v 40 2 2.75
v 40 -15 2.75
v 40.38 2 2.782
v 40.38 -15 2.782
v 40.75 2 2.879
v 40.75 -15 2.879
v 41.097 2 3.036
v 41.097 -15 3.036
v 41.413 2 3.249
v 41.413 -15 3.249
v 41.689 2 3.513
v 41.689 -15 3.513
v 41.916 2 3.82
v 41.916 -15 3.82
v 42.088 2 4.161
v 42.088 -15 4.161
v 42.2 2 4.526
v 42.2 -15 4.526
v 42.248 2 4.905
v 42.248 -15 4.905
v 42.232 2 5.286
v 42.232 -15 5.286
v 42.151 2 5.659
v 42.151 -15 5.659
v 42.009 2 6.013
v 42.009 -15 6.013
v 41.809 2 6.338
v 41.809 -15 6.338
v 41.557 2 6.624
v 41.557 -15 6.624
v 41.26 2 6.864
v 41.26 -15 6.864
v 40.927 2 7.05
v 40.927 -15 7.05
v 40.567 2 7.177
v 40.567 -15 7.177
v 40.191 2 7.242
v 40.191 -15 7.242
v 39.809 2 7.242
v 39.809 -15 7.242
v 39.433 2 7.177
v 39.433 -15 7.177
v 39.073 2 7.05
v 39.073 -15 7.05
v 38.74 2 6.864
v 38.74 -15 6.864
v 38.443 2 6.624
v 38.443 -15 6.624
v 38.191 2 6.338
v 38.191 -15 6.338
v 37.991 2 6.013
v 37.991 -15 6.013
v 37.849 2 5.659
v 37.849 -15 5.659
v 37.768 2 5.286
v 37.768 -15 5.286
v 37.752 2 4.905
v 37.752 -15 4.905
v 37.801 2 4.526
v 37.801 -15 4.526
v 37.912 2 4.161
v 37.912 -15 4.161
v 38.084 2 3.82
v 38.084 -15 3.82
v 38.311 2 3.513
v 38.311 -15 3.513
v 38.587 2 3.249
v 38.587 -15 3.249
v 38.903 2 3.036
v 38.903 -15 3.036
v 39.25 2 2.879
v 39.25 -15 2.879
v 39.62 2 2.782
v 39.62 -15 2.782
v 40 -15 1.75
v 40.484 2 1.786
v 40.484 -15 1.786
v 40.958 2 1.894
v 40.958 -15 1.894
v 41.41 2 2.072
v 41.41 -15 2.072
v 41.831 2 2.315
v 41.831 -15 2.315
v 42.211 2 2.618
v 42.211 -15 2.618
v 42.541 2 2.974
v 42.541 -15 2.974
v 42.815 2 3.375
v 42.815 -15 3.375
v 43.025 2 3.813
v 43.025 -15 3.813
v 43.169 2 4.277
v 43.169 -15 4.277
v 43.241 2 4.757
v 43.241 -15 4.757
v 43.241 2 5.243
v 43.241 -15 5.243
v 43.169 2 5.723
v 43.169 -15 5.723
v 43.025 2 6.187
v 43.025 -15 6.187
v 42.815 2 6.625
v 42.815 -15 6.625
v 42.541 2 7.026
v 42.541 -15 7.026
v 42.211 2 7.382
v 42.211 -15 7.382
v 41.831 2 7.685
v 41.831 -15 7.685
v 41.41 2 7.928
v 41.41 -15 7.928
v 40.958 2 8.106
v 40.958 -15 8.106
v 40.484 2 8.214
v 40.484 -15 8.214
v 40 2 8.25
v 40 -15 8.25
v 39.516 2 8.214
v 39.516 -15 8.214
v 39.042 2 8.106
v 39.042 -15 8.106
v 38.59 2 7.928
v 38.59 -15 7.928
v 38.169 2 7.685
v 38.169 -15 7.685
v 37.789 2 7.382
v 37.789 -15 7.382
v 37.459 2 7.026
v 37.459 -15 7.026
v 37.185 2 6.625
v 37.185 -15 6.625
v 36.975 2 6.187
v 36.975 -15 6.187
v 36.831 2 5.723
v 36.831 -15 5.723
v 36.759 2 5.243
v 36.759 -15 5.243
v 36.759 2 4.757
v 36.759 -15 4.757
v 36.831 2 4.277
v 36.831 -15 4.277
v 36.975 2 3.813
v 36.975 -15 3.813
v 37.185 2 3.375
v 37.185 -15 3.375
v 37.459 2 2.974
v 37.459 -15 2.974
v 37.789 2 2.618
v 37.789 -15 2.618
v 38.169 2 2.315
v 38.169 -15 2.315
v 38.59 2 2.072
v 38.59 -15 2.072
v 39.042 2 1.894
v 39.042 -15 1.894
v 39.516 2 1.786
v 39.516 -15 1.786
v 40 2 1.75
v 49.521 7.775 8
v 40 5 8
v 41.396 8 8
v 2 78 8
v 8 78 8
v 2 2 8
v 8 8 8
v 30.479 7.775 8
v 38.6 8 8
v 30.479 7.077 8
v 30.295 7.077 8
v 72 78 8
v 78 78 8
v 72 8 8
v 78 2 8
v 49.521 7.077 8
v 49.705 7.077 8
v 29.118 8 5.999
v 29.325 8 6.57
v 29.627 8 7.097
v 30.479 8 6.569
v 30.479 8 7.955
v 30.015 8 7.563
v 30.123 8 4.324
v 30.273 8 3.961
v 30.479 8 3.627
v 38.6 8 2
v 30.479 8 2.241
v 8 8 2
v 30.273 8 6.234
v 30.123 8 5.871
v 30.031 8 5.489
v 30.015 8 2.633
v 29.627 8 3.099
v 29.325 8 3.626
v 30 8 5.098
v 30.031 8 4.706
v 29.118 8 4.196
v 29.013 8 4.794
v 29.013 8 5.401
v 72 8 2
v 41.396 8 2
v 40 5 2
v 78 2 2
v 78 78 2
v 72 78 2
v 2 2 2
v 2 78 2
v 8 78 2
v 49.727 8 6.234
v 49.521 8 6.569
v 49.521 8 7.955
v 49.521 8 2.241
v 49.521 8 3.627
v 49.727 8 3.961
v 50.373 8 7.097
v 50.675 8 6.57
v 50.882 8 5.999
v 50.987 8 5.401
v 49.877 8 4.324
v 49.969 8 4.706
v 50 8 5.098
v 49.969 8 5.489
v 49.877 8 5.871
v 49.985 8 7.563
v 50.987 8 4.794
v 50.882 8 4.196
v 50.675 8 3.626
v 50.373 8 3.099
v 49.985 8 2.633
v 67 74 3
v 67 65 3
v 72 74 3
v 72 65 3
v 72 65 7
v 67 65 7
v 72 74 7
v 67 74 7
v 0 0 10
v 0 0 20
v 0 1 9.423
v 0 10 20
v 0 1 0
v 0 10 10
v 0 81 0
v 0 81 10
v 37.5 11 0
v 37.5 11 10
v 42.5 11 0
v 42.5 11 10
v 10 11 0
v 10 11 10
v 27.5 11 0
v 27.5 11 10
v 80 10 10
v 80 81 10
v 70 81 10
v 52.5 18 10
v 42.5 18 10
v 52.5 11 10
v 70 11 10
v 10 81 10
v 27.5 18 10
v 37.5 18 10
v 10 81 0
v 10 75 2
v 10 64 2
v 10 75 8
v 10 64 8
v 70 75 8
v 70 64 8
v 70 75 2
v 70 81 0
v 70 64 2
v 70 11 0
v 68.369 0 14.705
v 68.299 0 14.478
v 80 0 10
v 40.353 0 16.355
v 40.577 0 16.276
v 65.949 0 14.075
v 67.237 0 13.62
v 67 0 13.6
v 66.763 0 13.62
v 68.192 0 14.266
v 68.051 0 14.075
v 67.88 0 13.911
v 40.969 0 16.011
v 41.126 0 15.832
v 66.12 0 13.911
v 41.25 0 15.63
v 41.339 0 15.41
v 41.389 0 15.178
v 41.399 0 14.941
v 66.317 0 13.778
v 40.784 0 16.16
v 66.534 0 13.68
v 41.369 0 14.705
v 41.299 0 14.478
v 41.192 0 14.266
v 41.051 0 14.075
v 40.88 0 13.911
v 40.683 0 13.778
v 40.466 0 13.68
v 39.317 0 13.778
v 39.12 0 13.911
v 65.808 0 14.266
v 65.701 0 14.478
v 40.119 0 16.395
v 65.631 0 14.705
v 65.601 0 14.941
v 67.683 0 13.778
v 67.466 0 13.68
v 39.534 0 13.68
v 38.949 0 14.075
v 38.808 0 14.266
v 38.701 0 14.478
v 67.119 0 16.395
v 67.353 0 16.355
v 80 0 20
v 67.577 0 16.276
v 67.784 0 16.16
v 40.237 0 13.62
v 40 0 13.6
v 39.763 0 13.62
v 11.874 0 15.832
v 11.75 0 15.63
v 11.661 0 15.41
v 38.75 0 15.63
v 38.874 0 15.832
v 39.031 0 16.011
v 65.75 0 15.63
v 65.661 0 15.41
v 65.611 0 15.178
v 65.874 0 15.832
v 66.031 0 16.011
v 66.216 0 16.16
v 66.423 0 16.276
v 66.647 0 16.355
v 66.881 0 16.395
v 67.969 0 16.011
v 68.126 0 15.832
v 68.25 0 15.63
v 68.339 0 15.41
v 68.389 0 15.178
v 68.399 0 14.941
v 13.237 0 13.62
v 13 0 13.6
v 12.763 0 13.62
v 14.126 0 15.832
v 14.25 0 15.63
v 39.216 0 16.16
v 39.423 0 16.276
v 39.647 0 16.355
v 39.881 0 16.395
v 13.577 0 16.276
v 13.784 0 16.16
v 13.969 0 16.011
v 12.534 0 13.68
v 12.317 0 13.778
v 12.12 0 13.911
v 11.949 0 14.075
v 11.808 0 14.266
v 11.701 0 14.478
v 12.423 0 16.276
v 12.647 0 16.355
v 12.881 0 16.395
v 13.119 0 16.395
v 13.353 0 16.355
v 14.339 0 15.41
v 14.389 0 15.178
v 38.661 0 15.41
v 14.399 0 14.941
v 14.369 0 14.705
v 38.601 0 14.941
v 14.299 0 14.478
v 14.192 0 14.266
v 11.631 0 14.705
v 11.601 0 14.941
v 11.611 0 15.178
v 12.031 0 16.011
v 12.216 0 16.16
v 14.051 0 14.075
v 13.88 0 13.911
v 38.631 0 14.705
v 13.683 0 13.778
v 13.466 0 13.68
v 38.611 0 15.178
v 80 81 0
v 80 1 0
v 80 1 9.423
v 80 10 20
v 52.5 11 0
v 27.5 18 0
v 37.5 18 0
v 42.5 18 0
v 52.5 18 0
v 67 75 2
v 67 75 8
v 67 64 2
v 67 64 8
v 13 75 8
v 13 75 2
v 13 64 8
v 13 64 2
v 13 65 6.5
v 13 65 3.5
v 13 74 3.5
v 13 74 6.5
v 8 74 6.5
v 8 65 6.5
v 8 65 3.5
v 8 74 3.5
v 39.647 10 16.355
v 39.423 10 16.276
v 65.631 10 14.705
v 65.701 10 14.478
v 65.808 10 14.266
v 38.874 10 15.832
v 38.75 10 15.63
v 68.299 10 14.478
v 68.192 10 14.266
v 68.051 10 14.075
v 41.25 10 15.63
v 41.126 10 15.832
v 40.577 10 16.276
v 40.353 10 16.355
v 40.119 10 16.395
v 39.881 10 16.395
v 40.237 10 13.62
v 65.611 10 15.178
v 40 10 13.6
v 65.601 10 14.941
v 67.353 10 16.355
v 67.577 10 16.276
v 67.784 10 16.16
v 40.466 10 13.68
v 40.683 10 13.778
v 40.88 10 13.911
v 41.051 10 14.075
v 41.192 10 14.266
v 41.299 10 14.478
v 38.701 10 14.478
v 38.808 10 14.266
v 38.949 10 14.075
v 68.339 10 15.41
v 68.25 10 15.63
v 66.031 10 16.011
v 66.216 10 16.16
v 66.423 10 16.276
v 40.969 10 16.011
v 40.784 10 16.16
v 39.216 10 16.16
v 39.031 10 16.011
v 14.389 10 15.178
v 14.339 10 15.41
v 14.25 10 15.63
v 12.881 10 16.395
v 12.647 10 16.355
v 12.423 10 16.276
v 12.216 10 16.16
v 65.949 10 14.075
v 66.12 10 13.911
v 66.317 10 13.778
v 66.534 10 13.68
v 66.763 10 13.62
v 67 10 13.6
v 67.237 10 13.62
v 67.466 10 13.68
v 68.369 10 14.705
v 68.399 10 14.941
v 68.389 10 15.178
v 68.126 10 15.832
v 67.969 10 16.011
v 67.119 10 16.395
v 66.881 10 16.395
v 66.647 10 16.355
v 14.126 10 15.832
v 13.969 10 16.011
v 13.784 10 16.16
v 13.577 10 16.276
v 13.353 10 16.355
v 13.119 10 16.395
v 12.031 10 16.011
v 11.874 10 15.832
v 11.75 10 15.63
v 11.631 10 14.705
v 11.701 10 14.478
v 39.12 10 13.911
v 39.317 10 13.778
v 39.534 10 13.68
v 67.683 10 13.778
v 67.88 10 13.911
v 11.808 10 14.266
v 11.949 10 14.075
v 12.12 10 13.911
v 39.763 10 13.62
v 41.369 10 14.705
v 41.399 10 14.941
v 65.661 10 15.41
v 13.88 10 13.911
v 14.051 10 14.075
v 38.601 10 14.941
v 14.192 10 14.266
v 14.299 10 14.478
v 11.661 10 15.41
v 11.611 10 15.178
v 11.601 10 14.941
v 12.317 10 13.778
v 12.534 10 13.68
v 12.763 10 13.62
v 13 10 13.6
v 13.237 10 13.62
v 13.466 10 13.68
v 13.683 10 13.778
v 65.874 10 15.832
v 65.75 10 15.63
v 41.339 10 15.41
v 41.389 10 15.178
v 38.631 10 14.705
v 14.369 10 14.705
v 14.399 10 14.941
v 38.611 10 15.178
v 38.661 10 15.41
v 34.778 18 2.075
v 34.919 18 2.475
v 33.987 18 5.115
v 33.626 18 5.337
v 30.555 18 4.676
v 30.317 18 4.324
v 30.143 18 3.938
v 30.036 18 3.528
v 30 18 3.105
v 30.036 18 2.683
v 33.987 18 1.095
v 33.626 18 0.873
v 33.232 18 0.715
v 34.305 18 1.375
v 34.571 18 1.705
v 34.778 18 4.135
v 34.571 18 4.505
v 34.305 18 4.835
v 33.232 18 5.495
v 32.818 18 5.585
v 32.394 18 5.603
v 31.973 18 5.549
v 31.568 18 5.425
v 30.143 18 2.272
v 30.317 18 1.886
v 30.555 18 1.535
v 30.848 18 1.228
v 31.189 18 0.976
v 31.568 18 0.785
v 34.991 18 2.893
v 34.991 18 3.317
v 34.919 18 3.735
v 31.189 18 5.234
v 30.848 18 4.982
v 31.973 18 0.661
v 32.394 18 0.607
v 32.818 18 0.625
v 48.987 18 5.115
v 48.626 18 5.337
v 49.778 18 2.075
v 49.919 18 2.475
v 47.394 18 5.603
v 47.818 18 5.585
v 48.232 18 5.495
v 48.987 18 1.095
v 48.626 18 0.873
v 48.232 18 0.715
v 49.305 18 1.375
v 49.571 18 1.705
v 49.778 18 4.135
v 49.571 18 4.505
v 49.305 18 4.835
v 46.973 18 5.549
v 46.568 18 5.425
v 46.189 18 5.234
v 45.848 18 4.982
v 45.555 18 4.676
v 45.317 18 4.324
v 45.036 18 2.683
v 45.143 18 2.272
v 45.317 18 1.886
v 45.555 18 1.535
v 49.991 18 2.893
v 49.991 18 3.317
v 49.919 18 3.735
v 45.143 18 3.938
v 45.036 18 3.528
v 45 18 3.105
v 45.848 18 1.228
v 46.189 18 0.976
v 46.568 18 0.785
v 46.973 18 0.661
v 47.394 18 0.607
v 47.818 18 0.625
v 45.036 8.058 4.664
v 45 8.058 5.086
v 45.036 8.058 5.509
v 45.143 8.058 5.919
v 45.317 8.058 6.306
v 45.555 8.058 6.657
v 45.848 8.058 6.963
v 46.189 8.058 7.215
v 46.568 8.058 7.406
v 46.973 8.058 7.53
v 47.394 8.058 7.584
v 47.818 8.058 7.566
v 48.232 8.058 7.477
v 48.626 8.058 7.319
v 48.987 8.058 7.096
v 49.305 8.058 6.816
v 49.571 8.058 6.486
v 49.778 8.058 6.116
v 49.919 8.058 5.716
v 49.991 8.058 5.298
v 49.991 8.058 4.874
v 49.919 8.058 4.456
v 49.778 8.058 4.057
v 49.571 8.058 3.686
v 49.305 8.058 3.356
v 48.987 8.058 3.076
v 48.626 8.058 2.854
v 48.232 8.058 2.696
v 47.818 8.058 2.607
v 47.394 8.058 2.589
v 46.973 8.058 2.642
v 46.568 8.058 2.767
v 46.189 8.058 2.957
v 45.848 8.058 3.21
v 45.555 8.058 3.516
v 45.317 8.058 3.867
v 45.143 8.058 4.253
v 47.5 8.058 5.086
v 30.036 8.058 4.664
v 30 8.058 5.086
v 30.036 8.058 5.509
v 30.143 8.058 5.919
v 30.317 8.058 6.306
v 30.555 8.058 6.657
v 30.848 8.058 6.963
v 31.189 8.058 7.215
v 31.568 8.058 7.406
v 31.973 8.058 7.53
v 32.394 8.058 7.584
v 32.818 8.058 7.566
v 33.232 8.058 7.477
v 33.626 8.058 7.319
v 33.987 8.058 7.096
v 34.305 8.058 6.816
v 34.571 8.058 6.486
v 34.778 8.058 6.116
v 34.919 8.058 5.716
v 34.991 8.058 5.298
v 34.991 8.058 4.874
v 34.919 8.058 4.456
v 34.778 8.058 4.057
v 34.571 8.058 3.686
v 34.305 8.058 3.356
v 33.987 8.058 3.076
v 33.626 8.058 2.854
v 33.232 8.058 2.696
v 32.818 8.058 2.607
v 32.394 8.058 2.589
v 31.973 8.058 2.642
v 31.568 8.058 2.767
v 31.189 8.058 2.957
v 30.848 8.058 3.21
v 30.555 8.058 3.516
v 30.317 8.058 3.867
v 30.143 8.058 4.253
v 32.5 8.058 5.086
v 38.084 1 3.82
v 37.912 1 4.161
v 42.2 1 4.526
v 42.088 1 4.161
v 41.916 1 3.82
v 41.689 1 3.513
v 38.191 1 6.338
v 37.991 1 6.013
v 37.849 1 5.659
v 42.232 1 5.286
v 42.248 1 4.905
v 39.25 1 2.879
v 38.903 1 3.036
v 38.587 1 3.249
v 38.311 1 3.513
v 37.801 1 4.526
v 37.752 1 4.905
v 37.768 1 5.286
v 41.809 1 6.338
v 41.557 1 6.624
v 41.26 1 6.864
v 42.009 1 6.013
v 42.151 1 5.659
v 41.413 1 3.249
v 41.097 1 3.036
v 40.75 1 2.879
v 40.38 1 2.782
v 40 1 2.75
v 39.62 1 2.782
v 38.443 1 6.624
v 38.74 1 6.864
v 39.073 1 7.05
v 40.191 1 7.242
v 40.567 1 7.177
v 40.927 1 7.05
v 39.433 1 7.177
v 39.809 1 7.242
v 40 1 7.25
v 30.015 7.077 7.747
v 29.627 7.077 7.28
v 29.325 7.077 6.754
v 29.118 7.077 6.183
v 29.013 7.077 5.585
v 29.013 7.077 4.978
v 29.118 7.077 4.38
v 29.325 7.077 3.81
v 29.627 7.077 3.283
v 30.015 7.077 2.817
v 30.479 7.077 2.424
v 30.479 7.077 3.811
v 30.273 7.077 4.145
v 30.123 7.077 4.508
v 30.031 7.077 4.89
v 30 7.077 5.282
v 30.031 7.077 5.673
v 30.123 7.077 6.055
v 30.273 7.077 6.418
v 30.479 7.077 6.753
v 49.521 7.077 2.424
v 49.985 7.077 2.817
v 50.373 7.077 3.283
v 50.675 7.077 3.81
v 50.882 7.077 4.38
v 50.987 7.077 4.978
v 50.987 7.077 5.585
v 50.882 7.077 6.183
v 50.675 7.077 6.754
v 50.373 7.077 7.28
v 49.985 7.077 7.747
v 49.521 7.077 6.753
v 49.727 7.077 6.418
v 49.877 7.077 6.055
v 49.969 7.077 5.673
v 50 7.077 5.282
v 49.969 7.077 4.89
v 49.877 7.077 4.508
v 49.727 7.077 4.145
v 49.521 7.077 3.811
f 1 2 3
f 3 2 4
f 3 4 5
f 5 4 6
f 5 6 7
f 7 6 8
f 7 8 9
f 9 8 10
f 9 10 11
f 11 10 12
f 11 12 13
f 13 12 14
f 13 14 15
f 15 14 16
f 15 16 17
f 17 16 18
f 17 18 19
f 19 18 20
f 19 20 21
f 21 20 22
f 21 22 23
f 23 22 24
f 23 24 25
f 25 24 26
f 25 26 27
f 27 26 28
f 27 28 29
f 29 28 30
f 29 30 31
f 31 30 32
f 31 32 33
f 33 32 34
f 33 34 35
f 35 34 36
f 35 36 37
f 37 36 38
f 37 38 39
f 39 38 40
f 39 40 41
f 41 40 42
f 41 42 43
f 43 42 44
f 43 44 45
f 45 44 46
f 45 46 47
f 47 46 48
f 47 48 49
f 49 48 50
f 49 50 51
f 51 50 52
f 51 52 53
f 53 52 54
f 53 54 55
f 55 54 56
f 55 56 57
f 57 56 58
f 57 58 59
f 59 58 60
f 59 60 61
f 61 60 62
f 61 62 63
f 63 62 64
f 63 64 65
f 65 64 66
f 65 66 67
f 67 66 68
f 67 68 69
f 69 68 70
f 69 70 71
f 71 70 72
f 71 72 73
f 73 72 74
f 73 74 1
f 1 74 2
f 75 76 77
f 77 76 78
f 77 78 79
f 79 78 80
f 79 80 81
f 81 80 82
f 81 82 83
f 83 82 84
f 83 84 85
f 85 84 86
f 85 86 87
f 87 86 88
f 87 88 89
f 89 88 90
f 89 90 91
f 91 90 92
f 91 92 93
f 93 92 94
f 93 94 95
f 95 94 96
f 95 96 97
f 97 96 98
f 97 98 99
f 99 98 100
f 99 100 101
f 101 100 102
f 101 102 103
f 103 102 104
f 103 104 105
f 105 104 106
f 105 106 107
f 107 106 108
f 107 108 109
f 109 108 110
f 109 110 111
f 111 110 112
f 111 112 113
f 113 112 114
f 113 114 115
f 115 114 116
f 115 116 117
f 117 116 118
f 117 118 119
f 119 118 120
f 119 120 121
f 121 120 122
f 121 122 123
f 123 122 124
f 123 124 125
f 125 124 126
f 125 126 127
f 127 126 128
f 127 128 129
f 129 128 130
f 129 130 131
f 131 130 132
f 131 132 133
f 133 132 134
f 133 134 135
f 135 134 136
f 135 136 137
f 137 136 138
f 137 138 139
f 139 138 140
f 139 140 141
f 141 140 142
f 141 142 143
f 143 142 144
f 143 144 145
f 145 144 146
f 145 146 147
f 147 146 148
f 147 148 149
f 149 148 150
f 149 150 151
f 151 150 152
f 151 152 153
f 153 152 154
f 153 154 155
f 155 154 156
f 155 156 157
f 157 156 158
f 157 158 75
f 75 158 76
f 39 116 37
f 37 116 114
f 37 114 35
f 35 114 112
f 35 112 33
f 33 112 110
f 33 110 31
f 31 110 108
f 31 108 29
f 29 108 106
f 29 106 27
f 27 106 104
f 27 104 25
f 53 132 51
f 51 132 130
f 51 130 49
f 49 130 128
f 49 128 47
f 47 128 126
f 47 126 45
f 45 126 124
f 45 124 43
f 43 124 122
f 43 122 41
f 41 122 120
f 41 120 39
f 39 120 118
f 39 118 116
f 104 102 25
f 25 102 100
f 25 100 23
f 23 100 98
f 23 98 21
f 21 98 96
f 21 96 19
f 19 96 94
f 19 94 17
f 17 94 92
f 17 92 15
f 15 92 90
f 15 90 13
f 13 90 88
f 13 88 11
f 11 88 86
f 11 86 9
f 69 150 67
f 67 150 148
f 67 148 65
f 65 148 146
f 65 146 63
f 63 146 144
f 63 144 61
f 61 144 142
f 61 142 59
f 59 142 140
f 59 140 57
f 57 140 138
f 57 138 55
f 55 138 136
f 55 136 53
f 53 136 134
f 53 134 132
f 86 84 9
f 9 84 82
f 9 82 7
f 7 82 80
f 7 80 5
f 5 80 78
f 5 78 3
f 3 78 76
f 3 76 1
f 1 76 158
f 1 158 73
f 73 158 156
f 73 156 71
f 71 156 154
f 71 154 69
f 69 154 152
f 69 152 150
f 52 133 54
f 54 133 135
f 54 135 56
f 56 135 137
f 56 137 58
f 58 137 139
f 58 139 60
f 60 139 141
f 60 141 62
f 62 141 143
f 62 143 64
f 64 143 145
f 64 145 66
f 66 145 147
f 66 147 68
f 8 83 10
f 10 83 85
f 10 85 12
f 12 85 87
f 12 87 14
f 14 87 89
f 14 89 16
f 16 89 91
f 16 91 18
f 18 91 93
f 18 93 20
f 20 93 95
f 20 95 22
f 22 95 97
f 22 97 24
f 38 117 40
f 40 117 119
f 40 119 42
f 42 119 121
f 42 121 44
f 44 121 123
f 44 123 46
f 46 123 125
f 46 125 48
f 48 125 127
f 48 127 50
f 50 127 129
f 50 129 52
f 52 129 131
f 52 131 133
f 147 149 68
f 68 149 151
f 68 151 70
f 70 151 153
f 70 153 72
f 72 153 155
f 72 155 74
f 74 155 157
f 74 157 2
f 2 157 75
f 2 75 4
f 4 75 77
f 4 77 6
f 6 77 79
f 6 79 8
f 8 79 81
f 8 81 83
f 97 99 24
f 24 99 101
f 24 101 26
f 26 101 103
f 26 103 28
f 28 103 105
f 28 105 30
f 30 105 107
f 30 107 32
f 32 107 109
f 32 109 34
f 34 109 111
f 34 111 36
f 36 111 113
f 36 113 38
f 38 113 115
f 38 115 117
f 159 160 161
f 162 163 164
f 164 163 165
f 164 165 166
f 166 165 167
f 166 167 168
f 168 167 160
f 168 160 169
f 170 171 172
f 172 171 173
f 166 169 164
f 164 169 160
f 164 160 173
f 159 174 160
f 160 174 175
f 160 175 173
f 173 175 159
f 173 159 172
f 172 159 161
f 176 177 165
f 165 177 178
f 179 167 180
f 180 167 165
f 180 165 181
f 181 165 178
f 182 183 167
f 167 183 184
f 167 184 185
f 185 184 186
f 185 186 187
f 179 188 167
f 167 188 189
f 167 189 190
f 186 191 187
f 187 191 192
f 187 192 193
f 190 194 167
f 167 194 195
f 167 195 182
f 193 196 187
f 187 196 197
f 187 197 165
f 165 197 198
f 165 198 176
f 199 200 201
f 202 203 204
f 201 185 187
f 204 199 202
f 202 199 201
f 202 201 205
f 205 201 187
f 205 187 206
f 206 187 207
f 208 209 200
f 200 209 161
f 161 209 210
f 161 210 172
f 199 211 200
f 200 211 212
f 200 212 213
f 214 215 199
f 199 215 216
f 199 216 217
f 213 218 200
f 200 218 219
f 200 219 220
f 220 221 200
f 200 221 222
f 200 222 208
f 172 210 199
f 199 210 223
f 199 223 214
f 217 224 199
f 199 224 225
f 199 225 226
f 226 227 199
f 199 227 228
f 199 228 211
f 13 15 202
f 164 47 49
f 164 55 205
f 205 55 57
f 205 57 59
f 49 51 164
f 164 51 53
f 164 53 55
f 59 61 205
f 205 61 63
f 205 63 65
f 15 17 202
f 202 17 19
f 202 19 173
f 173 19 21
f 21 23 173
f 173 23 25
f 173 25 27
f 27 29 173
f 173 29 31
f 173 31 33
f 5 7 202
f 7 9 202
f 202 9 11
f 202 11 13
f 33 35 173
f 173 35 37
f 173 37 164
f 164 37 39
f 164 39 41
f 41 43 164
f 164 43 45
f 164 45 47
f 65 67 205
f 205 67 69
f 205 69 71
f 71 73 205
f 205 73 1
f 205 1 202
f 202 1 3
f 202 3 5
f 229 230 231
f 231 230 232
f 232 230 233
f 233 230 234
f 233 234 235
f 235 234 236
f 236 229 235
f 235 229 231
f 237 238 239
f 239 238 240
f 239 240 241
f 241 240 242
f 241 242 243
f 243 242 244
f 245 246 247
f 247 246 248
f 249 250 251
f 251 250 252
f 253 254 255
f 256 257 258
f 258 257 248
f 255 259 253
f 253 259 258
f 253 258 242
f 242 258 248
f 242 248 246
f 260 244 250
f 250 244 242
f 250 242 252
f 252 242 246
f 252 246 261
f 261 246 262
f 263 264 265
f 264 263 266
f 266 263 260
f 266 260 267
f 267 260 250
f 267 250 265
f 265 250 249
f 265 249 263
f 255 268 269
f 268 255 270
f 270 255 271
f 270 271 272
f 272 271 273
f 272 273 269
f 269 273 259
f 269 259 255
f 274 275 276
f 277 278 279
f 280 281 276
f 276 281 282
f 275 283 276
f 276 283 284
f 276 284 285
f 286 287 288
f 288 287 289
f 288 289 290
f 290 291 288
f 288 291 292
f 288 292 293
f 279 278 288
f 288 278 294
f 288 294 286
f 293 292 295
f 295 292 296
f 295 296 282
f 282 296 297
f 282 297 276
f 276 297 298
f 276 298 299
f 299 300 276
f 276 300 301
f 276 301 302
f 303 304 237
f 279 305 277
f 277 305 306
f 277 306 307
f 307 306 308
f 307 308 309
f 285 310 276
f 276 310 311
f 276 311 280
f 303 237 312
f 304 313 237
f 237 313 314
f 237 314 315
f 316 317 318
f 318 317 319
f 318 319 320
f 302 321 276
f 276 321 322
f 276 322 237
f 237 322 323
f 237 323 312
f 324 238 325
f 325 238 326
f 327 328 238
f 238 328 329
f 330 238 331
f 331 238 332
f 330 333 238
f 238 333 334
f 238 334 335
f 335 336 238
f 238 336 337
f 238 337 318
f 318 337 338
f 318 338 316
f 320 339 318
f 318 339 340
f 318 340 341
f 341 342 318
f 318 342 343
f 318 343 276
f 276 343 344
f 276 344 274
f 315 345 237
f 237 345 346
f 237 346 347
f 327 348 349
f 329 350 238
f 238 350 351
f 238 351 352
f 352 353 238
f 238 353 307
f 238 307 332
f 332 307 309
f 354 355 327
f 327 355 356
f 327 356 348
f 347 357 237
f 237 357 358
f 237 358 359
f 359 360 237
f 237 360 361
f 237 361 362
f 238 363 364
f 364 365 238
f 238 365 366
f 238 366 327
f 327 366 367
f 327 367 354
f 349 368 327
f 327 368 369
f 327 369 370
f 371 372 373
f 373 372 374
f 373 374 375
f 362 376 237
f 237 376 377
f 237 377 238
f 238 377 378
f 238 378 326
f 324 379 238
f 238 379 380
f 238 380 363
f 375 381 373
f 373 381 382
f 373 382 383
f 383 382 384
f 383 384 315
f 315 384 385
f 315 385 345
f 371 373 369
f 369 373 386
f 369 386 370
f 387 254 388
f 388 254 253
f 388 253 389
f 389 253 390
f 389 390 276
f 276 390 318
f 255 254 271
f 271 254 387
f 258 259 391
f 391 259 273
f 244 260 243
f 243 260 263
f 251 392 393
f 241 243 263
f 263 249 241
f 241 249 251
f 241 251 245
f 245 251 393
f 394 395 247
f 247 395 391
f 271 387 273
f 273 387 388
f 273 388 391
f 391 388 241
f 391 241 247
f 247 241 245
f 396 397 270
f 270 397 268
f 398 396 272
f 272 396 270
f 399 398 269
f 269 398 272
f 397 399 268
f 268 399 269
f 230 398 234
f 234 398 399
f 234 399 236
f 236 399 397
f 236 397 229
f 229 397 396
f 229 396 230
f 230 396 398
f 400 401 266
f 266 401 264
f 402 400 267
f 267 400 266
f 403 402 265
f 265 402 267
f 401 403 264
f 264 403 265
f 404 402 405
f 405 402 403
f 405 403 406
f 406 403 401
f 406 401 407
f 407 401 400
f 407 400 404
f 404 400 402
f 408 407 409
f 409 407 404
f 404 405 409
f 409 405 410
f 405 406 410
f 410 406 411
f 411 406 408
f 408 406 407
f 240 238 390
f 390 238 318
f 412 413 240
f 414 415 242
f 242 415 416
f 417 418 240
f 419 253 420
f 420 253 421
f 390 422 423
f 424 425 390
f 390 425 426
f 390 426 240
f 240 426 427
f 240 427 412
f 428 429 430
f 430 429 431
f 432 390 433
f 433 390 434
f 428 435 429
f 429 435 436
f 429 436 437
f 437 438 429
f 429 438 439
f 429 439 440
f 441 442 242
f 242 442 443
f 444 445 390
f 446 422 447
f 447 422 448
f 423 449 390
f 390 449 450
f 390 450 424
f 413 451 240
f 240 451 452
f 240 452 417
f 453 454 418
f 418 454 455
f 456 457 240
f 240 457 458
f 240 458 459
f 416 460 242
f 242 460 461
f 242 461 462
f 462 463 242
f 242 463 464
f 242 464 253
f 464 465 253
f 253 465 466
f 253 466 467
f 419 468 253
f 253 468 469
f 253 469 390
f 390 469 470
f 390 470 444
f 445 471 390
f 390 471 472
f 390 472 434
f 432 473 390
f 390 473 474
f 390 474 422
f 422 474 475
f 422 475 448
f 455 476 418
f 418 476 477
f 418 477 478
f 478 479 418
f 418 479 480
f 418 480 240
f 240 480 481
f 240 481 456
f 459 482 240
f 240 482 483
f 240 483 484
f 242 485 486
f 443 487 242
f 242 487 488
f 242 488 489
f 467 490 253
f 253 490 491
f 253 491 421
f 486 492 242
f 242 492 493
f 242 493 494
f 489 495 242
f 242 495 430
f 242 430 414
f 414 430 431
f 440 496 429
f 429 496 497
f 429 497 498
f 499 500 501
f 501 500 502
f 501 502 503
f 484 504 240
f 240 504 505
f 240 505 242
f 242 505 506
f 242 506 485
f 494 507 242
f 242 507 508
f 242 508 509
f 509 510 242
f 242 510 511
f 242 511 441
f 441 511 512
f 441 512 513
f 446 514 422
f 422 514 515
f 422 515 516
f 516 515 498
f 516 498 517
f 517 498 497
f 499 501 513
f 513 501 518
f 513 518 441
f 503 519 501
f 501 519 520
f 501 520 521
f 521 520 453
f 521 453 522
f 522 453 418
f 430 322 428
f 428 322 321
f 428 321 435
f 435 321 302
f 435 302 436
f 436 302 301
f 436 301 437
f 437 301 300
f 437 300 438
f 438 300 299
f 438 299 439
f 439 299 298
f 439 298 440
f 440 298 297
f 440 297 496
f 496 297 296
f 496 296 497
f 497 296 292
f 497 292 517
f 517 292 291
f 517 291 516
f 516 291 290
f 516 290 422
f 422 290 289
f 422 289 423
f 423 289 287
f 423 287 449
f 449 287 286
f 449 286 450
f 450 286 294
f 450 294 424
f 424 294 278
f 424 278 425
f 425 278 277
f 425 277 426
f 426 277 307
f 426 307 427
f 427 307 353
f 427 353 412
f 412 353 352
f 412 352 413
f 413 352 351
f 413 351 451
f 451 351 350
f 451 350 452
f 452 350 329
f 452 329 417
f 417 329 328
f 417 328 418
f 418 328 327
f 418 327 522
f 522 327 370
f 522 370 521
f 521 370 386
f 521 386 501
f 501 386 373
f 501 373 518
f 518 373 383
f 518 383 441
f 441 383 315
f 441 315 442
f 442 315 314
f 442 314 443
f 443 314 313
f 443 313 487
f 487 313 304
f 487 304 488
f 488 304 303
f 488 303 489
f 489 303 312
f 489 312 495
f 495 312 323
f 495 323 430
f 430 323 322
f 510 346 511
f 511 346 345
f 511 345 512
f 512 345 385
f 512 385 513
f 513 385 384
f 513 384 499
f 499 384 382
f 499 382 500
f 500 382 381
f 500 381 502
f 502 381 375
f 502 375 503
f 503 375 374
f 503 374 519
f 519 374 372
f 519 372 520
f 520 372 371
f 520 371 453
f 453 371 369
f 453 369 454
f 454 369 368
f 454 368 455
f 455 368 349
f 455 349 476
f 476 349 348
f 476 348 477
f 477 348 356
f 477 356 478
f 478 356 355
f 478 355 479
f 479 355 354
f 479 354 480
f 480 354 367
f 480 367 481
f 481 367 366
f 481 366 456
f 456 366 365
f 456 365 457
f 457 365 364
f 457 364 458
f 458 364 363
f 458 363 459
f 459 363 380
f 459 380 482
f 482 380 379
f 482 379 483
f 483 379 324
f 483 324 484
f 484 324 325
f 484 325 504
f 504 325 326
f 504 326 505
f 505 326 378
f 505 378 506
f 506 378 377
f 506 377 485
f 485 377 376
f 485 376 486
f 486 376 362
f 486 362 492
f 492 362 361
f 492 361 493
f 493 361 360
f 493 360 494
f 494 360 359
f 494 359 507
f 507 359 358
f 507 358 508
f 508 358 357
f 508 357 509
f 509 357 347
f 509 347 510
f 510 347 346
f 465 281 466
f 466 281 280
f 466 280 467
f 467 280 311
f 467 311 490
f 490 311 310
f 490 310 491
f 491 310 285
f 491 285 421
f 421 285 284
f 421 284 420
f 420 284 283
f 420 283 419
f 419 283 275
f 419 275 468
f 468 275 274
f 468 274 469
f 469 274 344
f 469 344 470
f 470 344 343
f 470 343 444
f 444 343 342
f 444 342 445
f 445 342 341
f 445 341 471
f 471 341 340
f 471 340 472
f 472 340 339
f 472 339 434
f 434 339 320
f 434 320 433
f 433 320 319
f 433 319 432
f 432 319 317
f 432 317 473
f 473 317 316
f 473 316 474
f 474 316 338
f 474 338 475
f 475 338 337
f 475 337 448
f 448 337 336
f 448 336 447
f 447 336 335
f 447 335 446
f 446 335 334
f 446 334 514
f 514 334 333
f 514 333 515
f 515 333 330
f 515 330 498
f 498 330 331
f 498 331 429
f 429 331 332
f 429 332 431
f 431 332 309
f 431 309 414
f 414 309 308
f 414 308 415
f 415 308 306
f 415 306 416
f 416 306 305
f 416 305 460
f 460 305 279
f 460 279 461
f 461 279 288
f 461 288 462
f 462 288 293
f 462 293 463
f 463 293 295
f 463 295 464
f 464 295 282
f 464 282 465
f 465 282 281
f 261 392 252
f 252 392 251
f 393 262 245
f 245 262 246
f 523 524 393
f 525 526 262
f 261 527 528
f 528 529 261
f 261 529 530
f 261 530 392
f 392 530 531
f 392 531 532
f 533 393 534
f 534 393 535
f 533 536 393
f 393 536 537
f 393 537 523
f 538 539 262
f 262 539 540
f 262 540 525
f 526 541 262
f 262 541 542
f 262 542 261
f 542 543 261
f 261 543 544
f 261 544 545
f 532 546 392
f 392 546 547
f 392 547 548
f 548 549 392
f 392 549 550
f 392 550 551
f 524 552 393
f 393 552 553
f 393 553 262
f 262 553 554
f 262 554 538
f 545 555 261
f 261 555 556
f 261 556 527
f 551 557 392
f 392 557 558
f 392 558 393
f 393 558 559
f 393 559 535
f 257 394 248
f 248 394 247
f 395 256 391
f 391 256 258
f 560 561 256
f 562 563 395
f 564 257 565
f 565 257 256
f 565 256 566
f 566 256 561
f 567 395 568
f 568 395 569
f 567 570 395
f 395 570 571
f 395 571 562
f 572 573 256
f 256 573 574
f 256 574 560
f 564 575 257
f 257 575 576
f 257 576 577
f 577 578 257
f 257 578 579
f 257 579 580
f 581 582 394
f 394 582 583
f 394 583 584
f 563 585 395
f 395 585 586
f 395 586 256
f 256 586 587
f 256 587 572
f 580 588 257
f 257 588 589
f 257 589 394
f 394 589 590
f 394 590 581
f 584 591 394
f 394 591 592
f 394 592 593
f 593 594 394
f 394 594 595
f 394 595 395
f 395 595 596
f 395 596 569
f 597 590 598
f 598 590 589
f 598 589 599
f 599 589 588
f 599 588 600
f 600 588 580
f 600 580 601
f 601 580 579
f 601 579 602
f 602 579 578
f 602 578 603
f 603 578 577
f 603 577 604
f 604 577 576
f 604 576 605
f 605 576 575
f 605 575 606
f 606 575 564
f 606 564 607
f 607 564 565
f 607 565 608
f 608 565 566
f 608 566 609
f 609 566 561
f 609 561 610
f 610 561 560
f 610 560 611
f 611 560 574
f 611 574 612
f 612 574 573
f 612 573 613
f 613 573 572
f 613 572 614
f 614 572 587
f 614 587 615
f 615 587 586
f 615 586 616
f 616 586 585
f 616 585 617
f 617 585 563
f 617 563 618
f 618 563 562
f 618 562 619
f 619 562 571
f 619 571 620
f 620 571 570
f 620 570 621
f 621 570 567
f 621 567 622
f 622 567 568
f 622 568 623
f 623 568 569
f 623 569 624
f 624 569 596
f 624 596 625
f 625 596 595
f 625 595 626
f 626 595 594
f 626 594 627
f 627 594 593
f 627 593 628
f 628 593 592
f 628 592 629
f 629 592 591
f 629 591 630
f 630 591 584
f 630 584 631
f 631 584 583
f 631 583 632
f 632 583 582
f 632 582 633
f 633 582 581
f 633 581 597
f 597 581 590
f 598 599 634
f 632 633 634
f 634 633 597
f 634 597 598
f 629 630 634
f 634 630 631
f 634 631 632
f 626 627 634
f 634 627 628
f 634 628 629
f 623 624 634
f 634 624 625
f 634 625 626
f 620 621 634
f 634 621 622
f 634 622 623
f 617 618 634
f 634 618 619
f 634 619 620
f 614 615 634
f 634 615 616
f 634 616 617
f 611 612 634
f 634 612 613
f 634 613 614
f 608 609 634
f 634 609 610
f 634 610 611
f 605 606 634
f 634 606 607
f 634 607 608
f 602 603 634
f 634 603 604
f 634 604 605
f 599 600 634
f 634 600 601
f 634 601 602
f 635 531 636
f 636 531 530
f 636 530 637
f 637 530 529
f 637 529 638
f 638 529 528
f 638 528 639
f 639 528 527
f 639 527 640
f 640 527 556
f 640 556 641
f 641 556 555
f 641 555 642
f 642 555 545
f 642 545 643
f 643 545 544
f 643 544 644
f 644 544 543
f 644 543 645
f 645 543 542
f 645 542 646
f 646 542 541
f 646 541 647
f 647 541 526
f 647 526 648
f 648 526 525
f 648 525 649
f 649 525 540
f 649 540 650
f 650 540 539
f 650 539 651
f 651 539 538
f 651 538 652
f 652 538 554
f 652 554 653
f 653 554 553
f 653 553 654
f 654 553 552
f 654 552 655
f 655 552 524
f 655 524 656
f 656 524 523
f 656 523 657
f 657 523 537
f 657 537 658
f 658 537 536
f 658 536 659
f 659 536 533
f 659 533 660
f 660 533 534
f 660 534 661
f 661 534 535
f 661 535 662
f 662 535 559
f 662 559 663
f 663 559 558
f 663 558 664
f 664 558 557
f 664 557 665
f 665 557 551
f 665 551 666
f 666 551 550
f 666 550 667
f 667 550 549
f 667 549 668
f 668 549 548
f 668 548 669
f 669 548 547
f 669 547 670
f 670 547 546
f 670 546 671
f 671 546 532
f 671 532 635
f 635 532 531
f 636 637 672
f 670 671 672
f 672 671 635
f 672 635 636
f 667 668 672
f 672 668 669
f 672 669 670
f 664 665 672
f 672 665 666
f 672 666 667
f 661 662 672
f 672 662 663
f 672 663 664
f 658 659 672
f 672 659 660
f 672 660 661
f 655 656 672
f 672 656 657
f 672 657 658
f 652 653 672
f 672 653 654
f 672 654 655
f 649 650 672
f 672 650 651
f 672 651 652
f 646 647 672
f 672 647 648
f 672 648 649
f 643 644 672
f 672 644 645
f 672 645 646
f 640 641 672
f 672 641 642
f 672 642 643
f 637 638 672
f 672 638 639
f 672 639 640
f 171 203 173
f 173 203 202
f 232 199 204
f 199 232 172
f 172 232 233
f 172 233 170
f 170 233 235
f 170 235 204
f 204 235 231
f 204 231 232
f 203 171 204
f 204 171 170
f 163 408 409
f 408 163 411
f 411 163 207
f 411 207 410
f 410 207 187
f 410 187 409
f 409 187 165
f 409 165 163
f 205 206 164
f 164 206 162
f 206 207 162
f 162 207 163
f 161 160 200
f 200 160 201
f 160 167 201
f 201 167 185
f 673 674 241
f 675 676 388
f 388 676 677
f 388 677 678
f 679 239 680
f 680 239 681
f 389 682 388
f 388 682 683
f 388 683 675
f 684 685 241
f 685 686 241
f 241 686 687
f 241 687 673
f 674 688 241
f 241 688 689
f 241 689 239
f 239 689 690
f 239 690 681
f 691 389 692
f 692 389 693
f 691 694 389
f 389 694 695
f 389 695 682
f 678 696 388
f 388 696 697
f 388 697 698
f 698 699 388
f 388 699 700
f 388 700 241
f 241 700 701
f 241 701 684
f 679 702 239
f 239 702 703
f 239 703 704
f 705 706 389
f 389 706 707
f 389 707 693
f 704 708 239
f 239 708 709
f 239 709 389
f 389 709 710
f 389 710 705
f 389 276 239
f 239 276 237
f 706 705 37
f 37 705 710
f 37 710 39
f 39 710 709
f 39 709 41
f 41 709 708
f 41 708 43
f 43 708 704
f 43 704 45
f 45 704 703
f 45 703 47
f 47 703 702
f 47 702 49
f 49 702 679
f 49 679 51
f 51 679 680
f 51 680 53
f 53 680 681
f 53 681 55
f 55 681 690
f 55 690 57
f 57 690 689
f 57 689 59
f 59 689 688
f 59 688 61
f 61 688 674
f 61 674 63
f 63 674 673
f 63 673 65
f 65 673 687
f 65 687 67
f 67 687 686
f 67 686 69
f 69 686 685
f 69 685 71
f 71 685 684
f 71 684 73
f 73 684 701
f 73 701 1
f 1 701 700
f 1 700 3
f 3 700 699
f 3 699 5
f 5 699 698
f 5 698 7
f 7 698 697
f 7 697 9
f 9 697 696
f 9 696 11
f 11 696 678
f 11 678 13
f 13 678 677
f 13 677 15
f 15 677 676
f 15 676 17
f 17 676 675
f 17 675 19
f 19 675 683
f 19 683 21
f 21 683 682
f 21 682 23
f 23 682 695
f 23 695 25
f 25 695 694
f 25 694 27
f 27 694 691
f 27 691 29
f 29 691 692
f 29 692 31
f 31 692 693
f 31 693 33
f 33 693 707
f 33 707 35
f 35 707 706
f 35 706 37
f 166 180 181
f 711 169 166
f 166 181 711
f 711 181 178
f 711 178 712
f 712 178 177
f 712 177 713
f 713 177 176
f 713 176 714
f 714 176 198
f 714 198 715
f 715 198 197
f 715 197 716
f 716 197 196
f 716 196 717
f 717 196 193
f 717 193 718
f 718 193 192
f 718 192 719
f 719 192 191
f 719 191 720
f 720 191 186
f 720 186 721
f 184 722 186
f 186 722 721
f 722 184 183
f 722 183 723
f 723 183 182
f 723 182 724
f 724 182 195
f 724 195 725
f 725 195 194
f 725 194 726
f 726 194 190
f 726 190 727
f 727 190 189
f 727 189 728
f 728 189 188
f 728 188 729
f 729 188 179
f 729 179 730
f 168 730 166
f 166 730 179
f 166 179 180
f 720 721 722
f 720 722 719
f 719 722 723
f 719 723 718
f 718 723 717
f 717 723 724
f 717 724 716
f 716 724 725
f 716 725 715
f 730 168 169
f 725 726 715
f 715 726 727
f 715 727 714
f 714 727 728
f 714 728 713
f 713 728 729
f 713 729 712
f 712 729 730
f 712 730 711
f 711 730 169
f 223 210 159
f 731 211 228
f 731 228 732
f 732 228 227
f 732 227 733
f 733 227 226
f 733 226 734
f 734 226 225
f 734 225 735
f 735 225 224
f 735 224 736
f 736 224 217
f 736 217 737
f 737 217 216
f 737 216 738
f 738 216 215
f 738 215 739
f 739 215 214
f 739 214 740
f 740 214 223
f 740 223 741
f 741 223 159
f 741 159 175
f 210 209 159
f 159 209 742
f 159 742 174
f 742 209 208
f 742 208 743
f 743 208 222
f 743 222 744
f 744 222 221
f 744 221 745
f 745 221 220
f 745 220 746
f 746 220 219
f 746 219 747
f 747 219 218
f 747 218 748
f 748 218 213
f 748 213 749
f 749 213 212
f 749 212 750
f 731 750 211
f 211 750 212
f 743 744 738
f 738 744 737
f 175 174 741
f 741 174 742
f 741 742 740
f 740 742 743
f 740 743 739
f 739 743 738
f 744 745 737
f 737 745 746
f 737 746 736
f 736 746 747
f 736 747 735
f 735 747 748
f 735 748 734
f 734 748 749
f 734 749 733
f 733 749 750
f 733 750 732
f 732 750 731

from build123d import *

# Parameters (mm, degrees)
BOSS_EXTRUDE1_DEPTH       = 10
SKETCH6_W                 = 4
SKETCH6_H                 = 9
CUT_EXTRUDE3_DEPTH        = 3
SKETCH6_3_W               = 6
SKETCH6_3_H               = 11
SKETCH6_3_W_2             = 4
SKETCH6_3_H_2             = 9
BOSS_EXTRUDE4_DEPTH       = 3
CUT_EXTRUDE4_START        = 65
CUT_EXTRUDE4_OUTLINE_W    = 4
CUT_EXTRUDE4_OUTLINE_H    = 3
CUT_EXTRUDE4_DEPTH        = 9
SKETCH5_3_W               = 6
SKETCH5_3_H               = 11
SKETCH5_3_W_2             = 3
SKETCH5_3_H_2             = 9
BOSS_EXTRUDE5_DEPTH       = 3
SKETCH8_W                 = 10
SKETCH8_H                 = 10
BOSS_EXTRUDE8_DEPTH       = 80
SKETCH9_R                 = 1.4
CUT_EXTRUDE6_DEPTH        = 10
SKETCH4_W                 = 10
SKETCH4_H                 = 10
BOSS_EXTRUDE11_DEPTH      = 7
SKETCH4_15_R              = 2.5
CUT_EXTRUDE8_DEPTH        = 8
CUT_EXTRUDE8_DEPTH_BACK   = 3
CUT_EXTRUDE11_DEPTH       = 78
SKETCH17_W                = 6
SKETCH17_H                = 6
CUT_EXTRUDE12_DEPTH       = 70
BOSS_EXTRUDE20_DEPTH      = 2
BOSS_EXTRUDE22_DEPTH      = 2
BOSS_EXTRUDE23_DEPTH      = 6
SKETCH22_W                = 10
SKETCH22_H                = 1
CUT_EXTRUDE15_DEPTH       = 80
CHAMFER3_SIZE2            = 0.577350269
CHAMFER3_SIZE             = 1
BOSS_EXTRUDE25_DEPTH      = 15
BOSS_EXTRUDE25_DEPTH_BACK = 2
CUT_EXTRUDE16_DEPTH       = 2
BOSS_EXTRUDE26_DEPTH      = 4


# Read off the part's stored shape, not the designer's step: Cut-Extrude4
with BuildPart() as part:
    # Sketch1 → Boss-Extrude1 (new body)
    with BuildSketch(Plane.XY):
        Polygon((0, 0), (80, 0), (80, 81), (70, 81), (70, 11), (10, 11), (10, 81), (0, 81), align=None)
    extrude(amount=BOSS_EXTRUDE1_DEPTH)

    # Sketch6 → Cut-Extrude3 (cut)
    with BuildSketch(Plane.ZY.offset(-70)):
        with Locations((5, 69.5)):
            Rectangle(SKETCH6_W, SKETCH6_H)
    extrude(amount=-CUT_EXTRUDE3_DEPTH, mode=Mode.SUBTRACT)

    # Sketch6<3> → Boss-Extrude4 (add)
    with BuildSketch(Plane.ZY.offset(-70)):
        with Locations((5, 69.5)):
            Rectangle(SKETCH6_3_W, SKETCH6_3_H)
        with Locations((5, 69.5)):
            Rectangle(SKETCH6_3_W_2, SKETCH6_3_H_2, mode=Mode.SUBTRACT)
    extrude(amount=BOSS_EXTRUDE4_DEPTH)

    # Cut-Extrude4 outline → Cut-Extrude4 (cut)
    with BuildSketch(Plane(origin=(0, 0, 0), x_dir=(1, 0, 0), z_dir=(0, 1, 0)).offset(CUT_EXTRUDE4_START)):
        with Locations((8, -5)):
            Rectangle(CUT_EXTRUDE4_OUTLINE_W, CUT_EXTRUDE4_OUTLINE_H)
    extrude(amount=CUT_EXTRUDE4_DEPTH, mode=Mode.SUBTRACT)

    # Sketch5<3> → Boss-Extrude5 (add)
    with BuildSketch(Plane(origin=(10, 0, 0), x_dir=(0, 0, -1), z_dir=(1, 0, 0))):
        with Locations((-5, 69.5)):
            Rectangle(SKETCH5_3_W, SKETCH5_3_H)
        with Locations((-5, 69.5)):
            Rectangle(SKETCH5_3_W_2, SKETCH5_3_H_2, mode=Mode.SUBTRACT)
    extrude(amount=BOSS_EXTRUDE5_DEPTH)

    # Sketch8 → Boss-Extrude8 (add)
    with BuildSketch(Plane(origin=(80, 0, 0), x_dir=(0, 0, -1), z_dir=(1, 0, 0))):
        with Locations((-15, 5)):
            Rectangle(SKETCH8_W, SKETCH8_H)
    extrude(amount=-BOSS_EXTRUDE8_DEPTH)

    # Sketch9 → Cut-Extrude6 (cut)
    with BuildSketch(Plane.XZ):
        with Locations(Location((40, 15, 0), (0, 0, 270))):
            Circle(SKETCH9_R)
        with Locations(Location((13, 15, 0), (0, 0, 270))):
            Circle(SKETCH9_R)
        with Locations(Location((67, 15, 0), (0, 0, 270))):
            Circle(SKETCH9_R)
    extrude(amount=-CUT_EXTRUDE6_DEPTH, mode=Mode.SUBTRACT)

    # Sketch4 → Boss-Extrude11 (add)
    with BuildSketch(Plane(origin=(0, 11, 0), x_dir=(1, 0, 0), z_dir=(0, 1, 0))):
        with Locations((32.5, -5)):
            Rectangle(SKETCH4_W, SKETCH4_H)
        with Locations((47.5, -5)):
            Rectangle(SKETCH4_W, SKETCH4_H)
    extrude(amount=BOSS_EXTRUDE11_DEPTH)

    # Sketch4<15> → Cut-Extrude8 (cut, two sides, along a direction that is not the sketch's normal)
    with BuildSketch(Plane(origin=(0, 11, 0), x_dir=(1, 0, 0), z_dir=(0, 1, 0))) as cut_extrude8_sk:
        with Locations((32.5, -4.5)):
            Circle(SKETCH4_15_R)
        with Locations((47.5, -4.5)):
            Circle(SKETCH4_15_R)
    extrude(amount=CUT_EXTRUDE8_DEPTH, dir=(0, 0.9807170231588296, -0.19543316117405435), mode=Mode.SUBTRACT)
    extrude(cut_extrude8_sk.sketch, amount=-CUT_EXTRUDE8_DEPTH_BACK, dir=(0, 0.9807170231588296, -0.19543316117405435), mode=Mode.SUBTRACT)

    # Sketch2 → Cut-Extrude11 (cut)
    with BuildSketch(Plane.ZY):
        with BuildLine():
            Line((8, 8), (5, 8))
            ThreePointArc((5, 8), (7.121320344, 7.121320344), (8, 5))
            Line((8, 5), (8, 8))
        make_face()
        with BuildLine():
            Line((8, 2), (8, 5))
            ThreePointArc((8, 5), (7.121320344, 2.878679656), (5, 2))
            Line((5, 2), (8, 2))
        make_face()
        with BuildLine():
            ThreePointArc((5, 2), (2.878679656, 2.878679656), (2, 5))
            Line((2, 5), (2, 2))
            Line((2, 2), (5, 2))
        make_face()
        with BuildLine():
            ThreePointArc((2, 5), (2.878679656, 7.121320344), (5, 8))
            Line((5, 8), (2, 8))
            Line((2, 8), (2, 5))
        make_face()
        with BuildLine():
            ThreePointArc((8, 5), (7.121320344, 7.121320344), (5, 8))
            Line((5, 8), (5, 7))
            ThreePointArc((5, 7), (6.414213562, 6.414213562), (7, 5))
            ThreePointArc((7, 5), (6.414213562, 3.585786438), (5, 3))
            Line((5, 3), (5, 2))
            ThreePointArc((5, 2), (7.121320344, 2.878679656), (8, 5))
        make_face()
        with BuildLine():
            Line((5, 7), (5, 8))
            ThreePointArc((5, 8), (2.878679656, 7.121320344), (2, 5))
            ThreePointArc((2, 5), (2.878679656, 2.878679656), (5, 2))
            Line((5, 2), (5, 3))
            ThreePointArc((5, 3), (3, 5), (5, 7))
        make_face()
        with BuildLine():
            ThreePointArc((7, 5), (6.414213562, 6.414213562), (5, 7))
            Line((5, 7), (5, 3))
            ThreePointArc((5, 3), (6.414213562, 3.585786438), (7, 5))
        make_face()
        with BuildLine():
            Line((5, 3), (5, 7))
            ThreePointArc((5, 7), (3, 5), (5, 3))
        make_face()
    extrude(amount=-CUT_EXTRUDE11_DEPTH, mode=Mode.SUBTRACT)

    # Sketch17 → Cut-Extrude12 (cut)
    with BuildSketch(Plane.XZ.offset(-8)):
        with Locations((5, 5)):
            Rectangle(SKETCH17_W, SKETCH17_H)
        with Locations((75, 5)):
            Rectangle(SKETCH17_W, SKETCH17_H)
    extrude(amount=-CUT_EXTRUDE12_DEPTH, mode=Mode.SUBTRACT)

    # Sketch2<17> → Boss-Extrude20 (add)
    with BuildSketch(Plane.ZY):
        with BuildLine():
            ThreePointArc((2, 5), (2.878679656, 7.121320344), (5, 8))
            Line((5, 8), (2, 8))
            Line((2, 8), (2, 5))
        make_face()
        with BuildLine():
            Line((8, 8), (5, 8))
            ThreePointArc((5, 8), (7.121320344, 7.121320344), (8, 5))
            Line((8, 5), (8, 8))
        make_face()
        with BuildLine():
            Line((8, 2), (8, 5))
            ThreePointArc((8, 5), (7.121320344, 2.878679656), (5, 2))
            Line((5, 2), (8, 2))
        make_face()
        with BuildLine():
            ThreePointArc((5, 2), (2.878679656, 2.878679656), (2, 5))
            Line((2, 5), (2, 2))
            Line((2, 2), (5, 2))
        make_face()
    extrude(amount=-BOSS_EXTRUDE20_DEPTH)

    # Sketch2<18> → Boss-Extrude22 (add)
    with BuildSketch(Plane.ZY):
        with BuildLine():
            ThreePointArc((8, 5), (7.121320344, 7.121320344), (5, 8))
            Line((5, 8), (5, 7))
            ThreePointArc((5, 7), (6.414213562, 6.414213562), (7, 5))
            ThreePointArc((7, 5), (6.414213562, 3.585786438), (5, 3))
            Line((5, 3), (5, 2))
            ThreePointArc((5, 2), (7.121320344, 2.878679656), (8, 5))
        make_face()
        with BuildLine():
            Line((5, 7), (5, 8))
            ThreePointArc((5, 8), (2.878679656, 7.121320344), (2, 5))
            ThreePointArc((2, 5), (2.878679656, 2.878679656), (5, 2))
            Line((5, 2), (5, 3))
            ThreePointArc((5, 3), (3, 5), (5, 7))
        make_face()
        with BuildLine():
            ThreePointArc((7, 5), (6.414213562, 6.414213562), (5, 7))
            Line((5, 7), (5, 3))
            ThreePointArc((5, 3), (6.414213562, 3.585786438), (7, 5))
        make_face()
        with BuildLine():
            Line((5, 3), (5, 7))
            ThreePointArc((5, 7), (3, 5), (5, 3))
        make_face()
    extrude(amount=-BOSS_EXTRUDE22_DEPTH)

    # Sketch21 → Boss-Extrude23 (add)
    with BuildSketch(Plane.XY.offset(2)):
        Polygon((41.4, 8.008887831), (38.6, 8), (40, 5), align=None)
    extrude(amount=BOSS_EXTRUDE23_DEPTH)

    # Sketch22 → Cut-Extrude15 (cut)
    with BuildSketch(Plane(origin=(80, 0, 0), x_dir=(0, 0, -1), z_dir=(1, 0, 0))):
        with Locations((-5, 0.5)):
            Rectangle(SKETCH22_W, SKETCH22_H)
    extrude(amount=-CUT_EXTRUDE15_DEPTH, mode=Mode.SUBTRACT)

    # Chamfer3
    chamfer3_edges = [part.edges().sort_by_distance(p)[0] for p in [
        (40, 1, 10),
    ]]
    chamfer3_side = [part.faces().sort_by_distance(p)[0] for p in [
        (40, 0.988452995, 10),
    ]]
    chamfer(chamfer3_edges, length=CHAMFER3_SIZE - 0.0001, length2=CHAMFER3_SIZE2 - 0.0001, reference=chamfer3_side[0])  # a hair under: the kernel refuses the full size

    # Sketch19<5> → Cut-Extrude16 (cut)
    with BuildSketch(Plane.XZ):
        with BuildLine():
            ThreePointArc((40, 7.25), (37.75, 5), (40, 2.75))
            Line((40, 2.75), (40, 7.25))
        make_face()
        with BuildLine():
            Line((40, 7.25), (40, 2.75))
            ThreePointArc((40, 2.75), (41.590990258, 3.409009742), (42.25, 5))
            ThreePointArc((42.25, 5), (41.590990258, 6.590990258), (40, 7.25))
        make_face()
    extrude(amount=-CUT_EXTRUDE16_DEPTH, mode=Mode.SUBTRACT)

    # Sketch4<16> → Boss-Extrude26 (add, along a direction that is not the sketch's normal)
    with BuildSketch(Plane(origin=(0, 11, 0), x_dir=(1, 0, 0), z_dir=(0, 1, 0))):
        with BuildLine():
            Line((30.47865802, -3.028885933), (30.47865802, -1.642697671))
            ThreePointArc((30.47865802, -1.642697671), (29, -4.5), (30.47865802, -7.357302329))
            Line((30.47865802, -7.357302329), (30.47865802, -5.971114067))
            ThreePointArc((30.47865802, -5.971114067), (30, -4.5), (30.47865802, -3.028885933))
        make_face()
        with BuildLine():
            ThreePointArc((49.52134198, -7.357302329), (51, -4.5), (49.52134198, -1.642697671))
            Line((49.52134198, -1.642697671), (49.52134198, -3.028885933))
            ThreePointArc((49.52134198, -3.028885933), (50, -4.5), (49.52134198, -5.971114067))
            Line((49.52134198, -5.971114067), (49.52134198, -7.357302329))
        make_face()
    extrude(amount=-BOSS_EXTRUDE26_DEPTH, dir=(0, 0.9807170231588296, -0.19543316117405435))


with BuildPart() as body_2:
    # Sketch19 → Boss-Extrude25 (new, two sides: drawn at the far end of the back side and taken through both)
    with BuildSketch(Plane.XZ.offset(-BOSS_EXTRUDE25_DEPTH_BACK)):
        with BuildLine():
            ThreePointArc((40, 8.25), (36.75, 5), (40, 1.75))
            Line((40, 1.75), (40, 2.75))
            ThreePointArc((40, 2.75), (37.75, 5), (40, 7.25))
            Line((40, 7.25), (40, 8.25))
        make_face()
        with BuildLine():
            Line((40, 2.75), (40, 1.75))
            ThreePointArc((40, 1.75), (42.298097039, 2.701902961), (43.25, 5))
            ThreePointArc((43.25, 5), (42.298097039, 7.298097039), (40, 8.25))
            Line((40, 8.25), (40, 7.25))
            ThreePointArc((40, 7.25), (41.590990258, 6.590990258), (42.25, 5))
            ThreePointArc((42.25, 5), (41.590990258, 3.409009742), (40, 2.75))
        make_face()
    extrude(amount=BOSS_EXTRUDE25_DEPTH + BOSS_EXTRUDE25_DEPTH_BACK)


solid = Compound([part.part, body_2.part])
